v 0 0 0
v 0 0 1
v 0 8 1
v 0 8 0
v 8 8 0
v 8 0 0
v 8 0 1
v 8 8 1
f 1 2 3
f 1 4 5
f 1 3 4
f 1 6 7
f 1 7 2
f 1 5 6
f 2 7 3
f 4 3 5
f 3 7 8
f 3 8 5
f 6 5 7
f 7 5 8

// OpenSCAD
/* Warning, this is a very basic generator with a lot of approximation 
input data : [VQFN, 5FX, 8x8x1.0mm, 56, , C, C04-00299C]
generated by com.zoubworld.electronics.cad.model3d.Basic
Date : Sun Feb 15 10:50:48 CET 2026
*/

//body
color("black")
translate([0,0,0])
cube([8.0,8.0,1.0], center=false);
